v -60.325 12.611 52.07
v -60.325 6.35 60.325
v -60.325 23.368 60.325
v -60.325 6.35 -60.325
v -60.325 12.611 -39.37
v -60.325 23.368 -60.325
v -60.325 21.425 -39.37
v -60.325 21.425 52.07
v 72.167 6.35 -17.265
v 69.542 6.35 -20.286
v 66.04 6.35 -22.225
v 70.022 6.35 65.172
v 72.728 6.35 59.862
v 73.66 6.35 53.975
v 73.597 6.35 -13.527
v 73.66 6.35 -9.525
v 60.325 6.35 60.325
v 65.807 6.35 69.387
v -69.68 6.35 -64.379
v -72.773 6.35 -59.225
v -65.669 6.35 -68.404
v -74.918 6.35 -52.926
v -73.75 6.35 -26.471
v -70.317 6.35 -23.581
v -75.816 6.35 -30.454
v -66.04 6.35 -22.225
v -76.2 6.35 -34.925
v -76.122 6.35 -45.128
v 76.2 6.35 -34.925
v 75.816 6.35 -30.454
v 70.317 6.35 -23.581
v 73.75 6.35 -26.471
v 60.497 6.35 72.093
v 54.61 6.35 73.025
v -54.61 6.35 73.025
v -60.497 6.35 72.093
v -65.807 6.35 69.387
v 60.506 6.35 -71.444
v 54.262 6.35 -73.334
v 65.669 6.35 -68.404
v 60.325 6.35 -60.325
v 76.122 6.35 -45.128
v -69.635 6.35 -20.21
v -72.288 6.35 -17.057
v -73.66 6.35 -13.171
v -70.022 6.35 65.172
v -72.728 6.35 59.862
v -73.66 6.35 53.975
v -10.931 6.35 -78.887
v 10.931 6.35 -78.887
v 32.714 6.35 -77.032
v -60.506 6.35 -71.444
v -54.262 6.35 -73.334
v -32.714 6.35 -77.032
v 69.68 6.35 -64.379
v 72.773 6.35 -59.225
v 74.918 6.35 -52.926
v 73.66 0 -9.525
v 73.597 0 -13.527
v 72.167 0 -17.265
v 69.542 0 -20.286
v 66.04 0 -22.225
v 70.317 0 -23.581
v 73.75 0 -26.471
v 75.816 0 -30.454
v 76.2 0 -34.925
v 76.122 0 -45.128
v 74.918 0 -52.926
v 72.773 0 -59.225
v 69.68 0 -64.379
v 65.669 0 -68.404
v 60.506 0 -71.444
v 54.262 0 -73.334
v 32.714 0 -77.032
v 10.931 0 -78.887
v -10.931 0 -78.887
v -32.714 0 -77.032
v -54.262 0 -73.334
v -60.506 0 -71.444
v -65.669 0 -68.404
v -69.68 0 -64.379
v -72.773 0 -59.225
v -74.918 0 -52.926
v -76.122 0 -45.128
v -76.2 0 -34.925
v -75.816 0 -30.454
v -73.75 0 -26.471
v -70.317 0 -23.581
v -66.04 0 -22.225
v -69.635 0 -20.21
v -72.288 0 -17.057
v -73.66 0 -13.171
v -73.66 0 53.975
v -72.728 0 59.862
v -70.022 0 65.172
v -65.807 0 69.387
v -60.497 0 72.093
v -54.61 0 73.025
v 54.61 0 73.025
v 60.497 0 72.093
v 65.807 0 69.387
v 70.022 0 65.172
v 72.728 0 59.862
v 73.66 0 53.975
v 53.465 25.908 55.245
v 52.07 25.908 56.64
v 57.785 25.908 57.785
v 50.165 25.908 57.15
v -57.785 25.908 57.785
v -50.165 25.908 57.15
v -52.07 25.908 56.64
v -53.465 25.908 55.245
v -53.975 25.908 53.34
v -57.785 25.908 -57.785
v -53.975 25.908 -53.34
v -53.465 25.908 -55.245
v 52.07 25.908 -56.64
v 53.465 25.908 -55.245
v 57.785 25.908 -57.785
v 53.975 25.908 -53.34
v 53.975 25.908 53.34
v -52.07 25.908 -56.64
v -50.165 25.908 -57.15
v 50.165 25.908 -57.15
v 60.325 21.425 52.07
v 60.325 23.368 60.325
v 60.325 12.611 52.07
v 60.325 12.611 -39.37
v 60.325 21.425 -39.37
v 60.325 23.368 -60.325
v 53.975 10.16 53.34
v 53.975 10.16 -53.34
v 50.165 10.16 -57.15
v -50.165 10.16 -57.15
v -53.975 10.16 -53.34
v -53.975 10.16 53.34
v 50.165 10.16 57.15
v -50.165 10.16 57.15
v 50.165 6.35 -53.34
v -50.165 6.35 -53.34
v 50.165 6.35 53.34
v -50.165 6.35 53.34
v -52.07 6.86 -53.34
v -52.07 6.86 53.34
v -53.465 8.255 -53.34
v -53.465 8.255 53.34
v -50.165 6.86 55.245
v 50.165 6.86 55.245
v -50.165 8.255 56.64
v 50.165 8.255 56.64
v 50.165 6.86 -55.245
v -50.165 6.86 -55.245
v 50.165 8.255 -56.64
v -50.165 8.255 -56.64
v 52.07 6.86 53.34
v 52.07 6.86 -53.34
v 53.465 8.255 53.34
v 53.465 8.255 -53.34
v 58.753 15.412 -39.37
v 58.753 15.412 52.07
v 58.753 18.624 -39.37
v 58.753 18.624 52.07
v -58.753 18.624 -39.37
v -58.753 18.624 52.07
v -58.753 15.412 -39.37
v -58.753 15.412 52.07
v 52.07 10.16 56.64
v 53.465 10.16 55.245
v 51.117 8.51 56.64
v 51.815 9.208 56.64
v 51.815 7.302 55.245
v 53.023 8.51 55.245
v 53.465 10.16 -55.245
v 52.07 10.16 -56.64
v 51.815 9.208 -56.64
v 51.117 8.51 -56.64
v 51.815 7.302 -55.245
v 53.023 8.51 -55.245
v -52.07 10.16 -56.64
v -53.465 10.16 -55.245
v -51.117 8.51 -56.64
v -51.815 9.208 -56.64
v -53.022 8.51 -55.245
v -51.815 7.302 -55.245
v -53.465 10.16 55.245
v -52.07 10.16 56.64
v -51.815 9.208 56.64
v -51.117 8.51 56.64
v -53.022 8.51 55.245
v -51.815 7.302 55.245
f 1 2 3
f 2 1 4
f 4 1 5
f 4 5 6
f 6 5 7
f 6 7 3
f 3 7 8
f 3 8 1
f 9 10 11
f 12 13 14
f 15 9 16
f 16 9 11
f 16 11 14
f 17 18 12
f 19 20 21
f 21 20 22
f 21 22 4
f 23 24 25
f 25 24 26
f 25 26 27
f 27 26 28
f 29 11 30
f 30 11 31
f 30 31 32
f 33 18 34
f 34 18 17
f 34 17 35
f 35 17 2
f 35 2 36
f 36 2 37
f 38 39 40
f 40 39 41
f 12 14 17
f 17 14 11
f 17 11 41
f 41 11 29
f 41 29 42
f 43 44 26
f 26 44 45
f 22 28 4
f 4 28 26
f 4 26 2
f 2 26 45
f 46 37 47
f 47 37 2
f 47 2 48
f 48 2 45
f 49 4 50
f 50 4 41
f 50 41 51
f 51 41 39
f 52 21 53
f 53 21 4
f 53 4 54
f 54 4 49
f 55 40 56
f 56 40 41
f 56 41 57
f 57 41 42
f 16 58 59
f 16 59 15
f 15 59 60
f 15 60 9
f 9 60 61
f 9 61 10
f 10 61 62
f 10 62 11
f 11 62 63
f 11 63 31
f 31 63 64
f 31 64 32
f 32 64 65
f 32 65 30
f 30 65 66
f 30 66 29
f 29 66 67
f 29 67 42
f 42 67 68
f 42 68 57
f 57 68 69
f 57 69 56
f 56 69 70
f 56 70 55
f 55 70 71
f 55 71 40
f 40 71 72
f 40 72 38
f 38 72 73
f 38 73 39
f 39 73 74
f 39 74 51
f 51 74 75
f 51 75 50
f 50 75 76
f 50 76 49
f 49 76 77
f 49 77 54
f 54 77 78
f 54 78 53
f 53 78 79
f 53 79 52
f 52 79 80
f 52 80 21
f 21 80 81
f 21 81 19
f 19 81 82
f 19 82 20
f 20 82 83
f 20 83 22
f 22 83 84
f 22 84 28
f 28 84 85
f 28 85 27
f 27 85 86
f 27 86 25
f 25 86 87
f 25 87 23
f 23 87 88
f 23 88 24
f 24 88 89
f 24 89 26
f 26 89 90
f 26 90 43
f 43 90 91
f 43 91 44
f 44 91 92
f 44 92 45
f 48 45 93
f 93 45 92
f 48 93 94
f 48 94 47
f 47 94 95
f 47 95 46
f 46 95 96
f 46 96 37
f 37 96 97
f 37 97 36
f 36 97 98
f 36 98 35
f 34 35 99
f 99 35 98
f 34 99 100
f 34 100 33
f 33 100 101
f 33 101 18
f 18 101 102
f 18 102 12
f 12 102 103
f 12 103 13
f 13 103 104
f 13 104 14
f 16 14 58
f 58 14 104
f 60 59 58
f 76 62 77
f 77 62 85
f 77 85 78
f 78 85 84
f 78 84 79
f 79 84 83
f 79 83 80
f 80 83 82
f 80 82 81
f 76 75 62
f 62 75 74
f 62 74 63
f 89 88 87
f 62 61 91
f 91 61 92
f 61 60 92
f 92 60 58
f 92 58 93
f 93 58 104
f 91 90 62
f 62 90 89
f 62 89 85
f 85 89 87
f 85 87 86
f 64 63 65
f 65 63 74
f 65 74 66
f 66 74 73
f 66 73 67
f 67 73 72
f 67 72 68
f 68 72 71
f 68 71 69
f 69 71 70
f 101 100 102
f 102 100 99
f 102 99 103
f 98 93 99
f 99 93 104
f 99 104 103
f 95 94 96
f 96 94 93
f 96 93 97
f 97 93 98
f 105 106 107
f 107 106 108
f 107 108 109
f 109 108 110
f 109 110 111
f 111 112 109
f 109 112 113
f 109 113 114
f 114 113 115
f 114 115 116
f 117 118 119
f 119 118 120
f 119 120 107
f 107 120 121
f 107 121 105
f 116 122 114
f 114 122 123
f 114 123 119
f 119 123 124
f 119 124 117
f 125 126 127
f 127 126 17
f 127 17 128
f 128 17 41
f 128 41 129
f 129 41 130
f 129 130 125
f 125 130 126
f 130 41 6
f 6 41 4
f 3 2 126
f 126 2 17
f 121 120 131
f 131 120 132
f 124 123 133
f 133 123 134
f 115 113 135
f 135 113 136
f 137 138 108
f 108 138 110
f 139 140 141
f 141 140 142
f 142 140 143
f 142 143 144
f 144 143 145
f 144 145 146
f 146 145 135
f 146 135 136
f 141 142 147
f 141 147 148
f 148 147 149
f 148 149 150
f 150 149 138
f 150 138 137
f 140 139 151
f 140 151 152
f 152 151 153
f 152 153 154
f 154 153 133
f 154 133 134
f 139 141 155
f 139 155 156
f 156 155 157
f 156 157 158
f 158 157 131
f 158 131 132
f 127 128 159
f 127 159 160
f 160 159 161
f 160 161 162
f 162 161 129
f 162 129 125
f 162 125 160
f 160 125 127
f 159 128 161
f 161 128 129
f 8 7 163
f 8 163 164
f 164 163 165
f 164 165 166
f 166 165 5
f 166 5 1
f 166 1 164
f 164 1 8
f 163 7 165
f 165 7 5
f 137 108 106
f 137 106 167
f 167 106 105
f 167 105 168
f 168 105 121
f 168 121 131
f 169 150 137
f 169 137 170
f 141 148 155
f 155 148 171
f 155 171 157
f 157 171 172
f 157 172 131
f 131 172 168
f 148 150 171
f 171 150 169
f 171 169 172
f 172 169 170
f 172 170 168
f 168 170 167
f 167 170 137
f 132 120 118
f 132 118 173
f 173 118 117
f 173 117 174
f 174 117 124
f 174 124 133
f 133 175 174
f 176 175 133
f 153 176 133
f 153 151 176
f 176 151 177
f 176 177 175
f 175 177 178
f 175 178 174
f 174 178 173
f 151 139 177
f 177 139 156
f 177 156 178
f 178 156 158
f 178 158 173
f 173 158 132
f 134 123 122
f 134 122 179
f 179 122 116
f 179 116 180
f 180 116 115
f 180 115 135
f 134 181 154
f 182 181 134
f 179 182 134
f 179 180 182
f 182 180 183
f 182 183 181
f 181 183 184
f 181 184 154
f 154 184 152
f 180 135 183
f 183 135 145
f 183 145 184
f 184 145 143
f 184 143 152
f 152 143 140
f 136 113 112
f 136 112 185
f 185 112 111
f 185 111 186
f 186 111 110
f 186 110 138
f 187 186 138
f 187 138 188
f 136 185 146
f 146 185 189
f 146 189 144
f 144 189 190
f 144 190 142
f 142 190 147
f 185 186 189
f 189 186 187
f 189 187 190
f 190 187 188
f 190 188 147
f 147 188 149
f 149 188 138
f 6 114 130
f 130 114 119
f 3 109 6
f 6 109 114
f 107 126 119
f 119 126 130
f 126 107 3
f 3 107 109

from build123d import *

# Parameters (mm, degrees)
BOSS_EXTRUDE1_DEPTH     = 6.35
SKETCH3_W               = 120.65
SKETCH3_H               = 120.65
SKETCH3_W_2             = 107.95
SKETCH3_H_2             = 114.3
BOSS_EXTRUDE2_DEPTH     = 19.558
FILLET2_R               = 3.81
CUT_EXTRUDE2_DEPTH      = 52.07
CUT_EXTRUDE2_DEPTH_BACK = 39.37
FILLET3_R               = 3.81
CHAMFER1_SIZE           = 2.54


with BuildPart() as part:
    # Sketch2 → Boss-Extrude1 (new body)
    with BuildSketch(Plane(origin=(0, 0, 0), x_dir=(1, 0, 0), z_dir=(0, 1, 0))):
        with BuildLine():
            ThreePointArc((-76.2, 34.925), (-73.750256121, 26.470795103), (-66.04, 22.225))
            ThreePointArc((-66.04, 22.225), (-71.103893825, 18.75335434), (-73.66, 13.171090867))
            Line((-73.66, 13.171090867), (-73.66, -53.975))
            ThreePointArc((-73.66, -53.975), (-68.080384182, -67.445384182), (-54.61, -73.025))
            Line((-54.61, -73.025), (54.61, -73.025))
            ThreePointArc((54.61, -73.025), (68.080384182, -67.445384182), (73.66, -53.975))
            Line((73.66, -53.975), (73.66, 9.525))
            ThreePointArc((73.66, 9.525), (72.166535166, 17.2649211), (66.04, 22.225))
            ThreePointArc((66.04, 22.225), (73.750256121, 26.470795103), (76.2, 34.925))
            add(Edge.make_bspline(
                [(54.26154132, 73.334062346), (78.033661383, 68.772092229), (76.2, 34.925)],
                knots=[0, 0, 0, 1, 1, 1], degree=2))
            ThreePointArc((54.26154132, 73.334062346), (0, 79.119757765), (-54.26154132, 73.334062346))
            add(Edge.make_bspline(
                [(-54.26154132, 73.334062346), (-78.033661383, 68.772092229), (-76.2, 34.925)],
                knots=[0, 0, 0, 1, 1, 1], degree=2))
        make_face()
    extrude(amount=BOSS_EXTRUDE1_DEPTH)

    # Sketch3 → Boss-Extrude2 (add)
    with BuildSketch(Plane(origin=(0, 6.35, 0), x_dir=(1, 0, 0), z_dir=(0, 1, 0))):
        Rectangle(SKETCH3_W, SKETCH3_H)
        Rectangle(SKETCH3_W_2, SKETCH3_H_2, mode=Mode.SUBTRACT)
    extrude(amount=BOSS_EXTRUDE2_DEPTH)

    # Fillet2
    fillet2_edges = [part.edges().sort_by_distance(p)[0] for p in [
        (53.975, 6.35, 0),
        (0, 6.35, -57.15),
        (-53.975, 6.35, 0),
        (0, 6.35, 57.15),
    ]]
    fillet(fillet2_edges, radius=FILLET2_R)

    # Sketch5 → Cut-Extrude2 (cut, two sides: drawn at the far end of the back side and taken through both)
    with BuildSketch(Plane.XY.offset(-CUT_EXTRUDE2_DEPTH_BACK)):
        with BuildLine():
            Line((60.325, 21.4247353), (60.325, 12.6112647))
            ThreePointArc((60.325, 12.6112647), (58.547, 17.018), (60.325, 21.4247353))
        make_face()
        with BuildLine():
            Line((-60.325, 21.4247353), (-60.325, 12.6112647))
            ThreePointArc((-60.325, 12.6112647), (-58.547, 17.018), (-60.325, 21.4247353))
        make_face()
    extrude(amount=CUT_EXTRUDE2_DEPTH + CUT_EXTRUDE2_DEPTH_BACK, mode=Mode.SUBTRACT)

    # Fillet3
    # the kernel refuses this fillet: 3.81 mm, written as the material it adds along each edge
    with BuildSketch(Plane(origin=(-50.165, 10.16, 53.34), x_dir=(0, 0, 1), z_dir=(-1, 0, 0))) as fillet3_piece_1_section:
        Polygon((0, 0), (FILLET3_R, 0), (FILLET3_R, -FILLET3_R), (0, -FILLET3_R), align=None)
    fillet3_piece_1 = extrude(amount=FILLET3_R, mode=Mode.PRIVATE)
    fillet3_piece_1 = fillet3_piece_1 - Plane(origin=(-50.165, 10.16, 53.34), x_dir=(0, 0.7071067811865475, -0.7071067811865475), z_dir=(-1, 0, 0)) * Sphere(FILLET3_R, mode=Mode.PRIVATE)
    add(fillet3_piece_1)
    with BuildSketch(Plane(origin=(-50.165, 10.16, -53.34), x_dir=(0, 0, -1), z_dir=(-1, 0, 0))) as fillet3_piece_2_section:
        Polygon((0, 0), (FILLET3_R, 0), (FILLET3_R, FILLET3_R), (0, FILLET3_R), align=None)
    fillet3_piece_2 = extrude(amount=FILLET3_R, mode=Mode.PRIVATE)
    fillet3_piece_2 = fillet3_piece_2 - Plane(origin=(-50.165, 10.16, -53.34), x_dir=(0, 0.7071067811865475, 0.7071067811865475), z_dir=(-1, 0, 0)) * Sphere(FILLET3_R, mode=Mode.PRIVATE)
    add(fillet3_piece_2)
    with BuildSketch(Plane(origin=(50.165, 10.16, 53.34), x_dir=(1, 0, 0), z_dir=(0, 0, 1))) as fillet3_piece_3_section:
        Polygon((0, 0), (FILLET3_R, 0), (FILLET3_R, -FILLET3_R), (0, -FILLET3_R), align=None)
    fillet3_piece_3 = extrude(amount=FILLET3_R, mode=Mode.PRIVATE)
    fillet3_piece_3 = fillet3_piece_3 - Plane(origin=(50.165, 10.16, 53.34), x_dir=(-0.7071067811865475, 0.7071067811865475, 0), z_dir=(0, 0, 1)) * Sphere(FILLET3_R, mode=Mode.PRIVATE)
    add(fillet3_piece_3)
    with BuildSketch(Plane(origin=(50.165, 10.16, -53.34), x_dir=(1, 0, 0), z_dir=(0, 0, -1))) as fillet3_piece_4_section:
        Polygon((0, 0), (FILLET3_R, 0), (FILLET3_R, FILLET3_R), (0, FILLET3_R), align=None)
    fillet3_piece_4 = extrude(amount=FILLET3_R, mode=Mode.PRIVATE)
    fillet3_piece_4 = fillet3_piece_4 - Plane(origin=(50.165, 10.16, -53.34), x_dir=(-0.7071067811865475, 0.7071067811865475, 0), z_dir=(0, 0, -1)) * Sphere(FILLET3_R, mode=Mode.PRIVATE)
    add(fillet3_piece_4)
    with BuildSketch(Plane(origin=(53.975, 10.16, -57.15), x_dir=(-1, 0, 0), z_dir=(0, 1, 0)), Plane(origin=(-53.975, 10.16, -57.15), x_dir=(0, 0, 1), z_dir=(0, 1, 0))) as fillet3_piece_5:
        with BuildLine():
            CenterArc((FILLET3_R, FILLET3_R), FILLET3_R, 180, 90)
            Line((0, FILLET3_R), (0, 0))
            Line((0, 0), (FILLET3_R, 0))
        make_face()
    extrude(amount=15.748)
    with BuildSketch(Plane(origin=(-53.975, 10.16, 57.15), x_dir=(0, 0, -1), z_dir=(0, 1, 0)), Plane(origin=(53.975, 10.16, 57.15), x_dir=(-1, 0, 0), z_dir=(0, 1, 0))) as fillet3_piece_6:
        with BuildLine():
            CenterArc((FILLET3_R, -FILLET3_R), FILLET3_R, 90, 90)
            Line((0, -FILLET3_R), (0, 0))
            Line((0, 0), (FILLET3_R, 0))
        make_face()
    extrude(amount=15.748)

    # Chamfer1
    chamfer1_edges = [part.edges().sort_by_distance(p)[0] for p in [
        (60.325, 25.908, 0),
        (0, 25.908, -60.325),
        (-60.325, 25.908, 0),
        (0, 25.908, 60.325),
    ]]
    chamfer(chamfer1_edges, length=CHAMFER1_SIZE)


solid = part.part
